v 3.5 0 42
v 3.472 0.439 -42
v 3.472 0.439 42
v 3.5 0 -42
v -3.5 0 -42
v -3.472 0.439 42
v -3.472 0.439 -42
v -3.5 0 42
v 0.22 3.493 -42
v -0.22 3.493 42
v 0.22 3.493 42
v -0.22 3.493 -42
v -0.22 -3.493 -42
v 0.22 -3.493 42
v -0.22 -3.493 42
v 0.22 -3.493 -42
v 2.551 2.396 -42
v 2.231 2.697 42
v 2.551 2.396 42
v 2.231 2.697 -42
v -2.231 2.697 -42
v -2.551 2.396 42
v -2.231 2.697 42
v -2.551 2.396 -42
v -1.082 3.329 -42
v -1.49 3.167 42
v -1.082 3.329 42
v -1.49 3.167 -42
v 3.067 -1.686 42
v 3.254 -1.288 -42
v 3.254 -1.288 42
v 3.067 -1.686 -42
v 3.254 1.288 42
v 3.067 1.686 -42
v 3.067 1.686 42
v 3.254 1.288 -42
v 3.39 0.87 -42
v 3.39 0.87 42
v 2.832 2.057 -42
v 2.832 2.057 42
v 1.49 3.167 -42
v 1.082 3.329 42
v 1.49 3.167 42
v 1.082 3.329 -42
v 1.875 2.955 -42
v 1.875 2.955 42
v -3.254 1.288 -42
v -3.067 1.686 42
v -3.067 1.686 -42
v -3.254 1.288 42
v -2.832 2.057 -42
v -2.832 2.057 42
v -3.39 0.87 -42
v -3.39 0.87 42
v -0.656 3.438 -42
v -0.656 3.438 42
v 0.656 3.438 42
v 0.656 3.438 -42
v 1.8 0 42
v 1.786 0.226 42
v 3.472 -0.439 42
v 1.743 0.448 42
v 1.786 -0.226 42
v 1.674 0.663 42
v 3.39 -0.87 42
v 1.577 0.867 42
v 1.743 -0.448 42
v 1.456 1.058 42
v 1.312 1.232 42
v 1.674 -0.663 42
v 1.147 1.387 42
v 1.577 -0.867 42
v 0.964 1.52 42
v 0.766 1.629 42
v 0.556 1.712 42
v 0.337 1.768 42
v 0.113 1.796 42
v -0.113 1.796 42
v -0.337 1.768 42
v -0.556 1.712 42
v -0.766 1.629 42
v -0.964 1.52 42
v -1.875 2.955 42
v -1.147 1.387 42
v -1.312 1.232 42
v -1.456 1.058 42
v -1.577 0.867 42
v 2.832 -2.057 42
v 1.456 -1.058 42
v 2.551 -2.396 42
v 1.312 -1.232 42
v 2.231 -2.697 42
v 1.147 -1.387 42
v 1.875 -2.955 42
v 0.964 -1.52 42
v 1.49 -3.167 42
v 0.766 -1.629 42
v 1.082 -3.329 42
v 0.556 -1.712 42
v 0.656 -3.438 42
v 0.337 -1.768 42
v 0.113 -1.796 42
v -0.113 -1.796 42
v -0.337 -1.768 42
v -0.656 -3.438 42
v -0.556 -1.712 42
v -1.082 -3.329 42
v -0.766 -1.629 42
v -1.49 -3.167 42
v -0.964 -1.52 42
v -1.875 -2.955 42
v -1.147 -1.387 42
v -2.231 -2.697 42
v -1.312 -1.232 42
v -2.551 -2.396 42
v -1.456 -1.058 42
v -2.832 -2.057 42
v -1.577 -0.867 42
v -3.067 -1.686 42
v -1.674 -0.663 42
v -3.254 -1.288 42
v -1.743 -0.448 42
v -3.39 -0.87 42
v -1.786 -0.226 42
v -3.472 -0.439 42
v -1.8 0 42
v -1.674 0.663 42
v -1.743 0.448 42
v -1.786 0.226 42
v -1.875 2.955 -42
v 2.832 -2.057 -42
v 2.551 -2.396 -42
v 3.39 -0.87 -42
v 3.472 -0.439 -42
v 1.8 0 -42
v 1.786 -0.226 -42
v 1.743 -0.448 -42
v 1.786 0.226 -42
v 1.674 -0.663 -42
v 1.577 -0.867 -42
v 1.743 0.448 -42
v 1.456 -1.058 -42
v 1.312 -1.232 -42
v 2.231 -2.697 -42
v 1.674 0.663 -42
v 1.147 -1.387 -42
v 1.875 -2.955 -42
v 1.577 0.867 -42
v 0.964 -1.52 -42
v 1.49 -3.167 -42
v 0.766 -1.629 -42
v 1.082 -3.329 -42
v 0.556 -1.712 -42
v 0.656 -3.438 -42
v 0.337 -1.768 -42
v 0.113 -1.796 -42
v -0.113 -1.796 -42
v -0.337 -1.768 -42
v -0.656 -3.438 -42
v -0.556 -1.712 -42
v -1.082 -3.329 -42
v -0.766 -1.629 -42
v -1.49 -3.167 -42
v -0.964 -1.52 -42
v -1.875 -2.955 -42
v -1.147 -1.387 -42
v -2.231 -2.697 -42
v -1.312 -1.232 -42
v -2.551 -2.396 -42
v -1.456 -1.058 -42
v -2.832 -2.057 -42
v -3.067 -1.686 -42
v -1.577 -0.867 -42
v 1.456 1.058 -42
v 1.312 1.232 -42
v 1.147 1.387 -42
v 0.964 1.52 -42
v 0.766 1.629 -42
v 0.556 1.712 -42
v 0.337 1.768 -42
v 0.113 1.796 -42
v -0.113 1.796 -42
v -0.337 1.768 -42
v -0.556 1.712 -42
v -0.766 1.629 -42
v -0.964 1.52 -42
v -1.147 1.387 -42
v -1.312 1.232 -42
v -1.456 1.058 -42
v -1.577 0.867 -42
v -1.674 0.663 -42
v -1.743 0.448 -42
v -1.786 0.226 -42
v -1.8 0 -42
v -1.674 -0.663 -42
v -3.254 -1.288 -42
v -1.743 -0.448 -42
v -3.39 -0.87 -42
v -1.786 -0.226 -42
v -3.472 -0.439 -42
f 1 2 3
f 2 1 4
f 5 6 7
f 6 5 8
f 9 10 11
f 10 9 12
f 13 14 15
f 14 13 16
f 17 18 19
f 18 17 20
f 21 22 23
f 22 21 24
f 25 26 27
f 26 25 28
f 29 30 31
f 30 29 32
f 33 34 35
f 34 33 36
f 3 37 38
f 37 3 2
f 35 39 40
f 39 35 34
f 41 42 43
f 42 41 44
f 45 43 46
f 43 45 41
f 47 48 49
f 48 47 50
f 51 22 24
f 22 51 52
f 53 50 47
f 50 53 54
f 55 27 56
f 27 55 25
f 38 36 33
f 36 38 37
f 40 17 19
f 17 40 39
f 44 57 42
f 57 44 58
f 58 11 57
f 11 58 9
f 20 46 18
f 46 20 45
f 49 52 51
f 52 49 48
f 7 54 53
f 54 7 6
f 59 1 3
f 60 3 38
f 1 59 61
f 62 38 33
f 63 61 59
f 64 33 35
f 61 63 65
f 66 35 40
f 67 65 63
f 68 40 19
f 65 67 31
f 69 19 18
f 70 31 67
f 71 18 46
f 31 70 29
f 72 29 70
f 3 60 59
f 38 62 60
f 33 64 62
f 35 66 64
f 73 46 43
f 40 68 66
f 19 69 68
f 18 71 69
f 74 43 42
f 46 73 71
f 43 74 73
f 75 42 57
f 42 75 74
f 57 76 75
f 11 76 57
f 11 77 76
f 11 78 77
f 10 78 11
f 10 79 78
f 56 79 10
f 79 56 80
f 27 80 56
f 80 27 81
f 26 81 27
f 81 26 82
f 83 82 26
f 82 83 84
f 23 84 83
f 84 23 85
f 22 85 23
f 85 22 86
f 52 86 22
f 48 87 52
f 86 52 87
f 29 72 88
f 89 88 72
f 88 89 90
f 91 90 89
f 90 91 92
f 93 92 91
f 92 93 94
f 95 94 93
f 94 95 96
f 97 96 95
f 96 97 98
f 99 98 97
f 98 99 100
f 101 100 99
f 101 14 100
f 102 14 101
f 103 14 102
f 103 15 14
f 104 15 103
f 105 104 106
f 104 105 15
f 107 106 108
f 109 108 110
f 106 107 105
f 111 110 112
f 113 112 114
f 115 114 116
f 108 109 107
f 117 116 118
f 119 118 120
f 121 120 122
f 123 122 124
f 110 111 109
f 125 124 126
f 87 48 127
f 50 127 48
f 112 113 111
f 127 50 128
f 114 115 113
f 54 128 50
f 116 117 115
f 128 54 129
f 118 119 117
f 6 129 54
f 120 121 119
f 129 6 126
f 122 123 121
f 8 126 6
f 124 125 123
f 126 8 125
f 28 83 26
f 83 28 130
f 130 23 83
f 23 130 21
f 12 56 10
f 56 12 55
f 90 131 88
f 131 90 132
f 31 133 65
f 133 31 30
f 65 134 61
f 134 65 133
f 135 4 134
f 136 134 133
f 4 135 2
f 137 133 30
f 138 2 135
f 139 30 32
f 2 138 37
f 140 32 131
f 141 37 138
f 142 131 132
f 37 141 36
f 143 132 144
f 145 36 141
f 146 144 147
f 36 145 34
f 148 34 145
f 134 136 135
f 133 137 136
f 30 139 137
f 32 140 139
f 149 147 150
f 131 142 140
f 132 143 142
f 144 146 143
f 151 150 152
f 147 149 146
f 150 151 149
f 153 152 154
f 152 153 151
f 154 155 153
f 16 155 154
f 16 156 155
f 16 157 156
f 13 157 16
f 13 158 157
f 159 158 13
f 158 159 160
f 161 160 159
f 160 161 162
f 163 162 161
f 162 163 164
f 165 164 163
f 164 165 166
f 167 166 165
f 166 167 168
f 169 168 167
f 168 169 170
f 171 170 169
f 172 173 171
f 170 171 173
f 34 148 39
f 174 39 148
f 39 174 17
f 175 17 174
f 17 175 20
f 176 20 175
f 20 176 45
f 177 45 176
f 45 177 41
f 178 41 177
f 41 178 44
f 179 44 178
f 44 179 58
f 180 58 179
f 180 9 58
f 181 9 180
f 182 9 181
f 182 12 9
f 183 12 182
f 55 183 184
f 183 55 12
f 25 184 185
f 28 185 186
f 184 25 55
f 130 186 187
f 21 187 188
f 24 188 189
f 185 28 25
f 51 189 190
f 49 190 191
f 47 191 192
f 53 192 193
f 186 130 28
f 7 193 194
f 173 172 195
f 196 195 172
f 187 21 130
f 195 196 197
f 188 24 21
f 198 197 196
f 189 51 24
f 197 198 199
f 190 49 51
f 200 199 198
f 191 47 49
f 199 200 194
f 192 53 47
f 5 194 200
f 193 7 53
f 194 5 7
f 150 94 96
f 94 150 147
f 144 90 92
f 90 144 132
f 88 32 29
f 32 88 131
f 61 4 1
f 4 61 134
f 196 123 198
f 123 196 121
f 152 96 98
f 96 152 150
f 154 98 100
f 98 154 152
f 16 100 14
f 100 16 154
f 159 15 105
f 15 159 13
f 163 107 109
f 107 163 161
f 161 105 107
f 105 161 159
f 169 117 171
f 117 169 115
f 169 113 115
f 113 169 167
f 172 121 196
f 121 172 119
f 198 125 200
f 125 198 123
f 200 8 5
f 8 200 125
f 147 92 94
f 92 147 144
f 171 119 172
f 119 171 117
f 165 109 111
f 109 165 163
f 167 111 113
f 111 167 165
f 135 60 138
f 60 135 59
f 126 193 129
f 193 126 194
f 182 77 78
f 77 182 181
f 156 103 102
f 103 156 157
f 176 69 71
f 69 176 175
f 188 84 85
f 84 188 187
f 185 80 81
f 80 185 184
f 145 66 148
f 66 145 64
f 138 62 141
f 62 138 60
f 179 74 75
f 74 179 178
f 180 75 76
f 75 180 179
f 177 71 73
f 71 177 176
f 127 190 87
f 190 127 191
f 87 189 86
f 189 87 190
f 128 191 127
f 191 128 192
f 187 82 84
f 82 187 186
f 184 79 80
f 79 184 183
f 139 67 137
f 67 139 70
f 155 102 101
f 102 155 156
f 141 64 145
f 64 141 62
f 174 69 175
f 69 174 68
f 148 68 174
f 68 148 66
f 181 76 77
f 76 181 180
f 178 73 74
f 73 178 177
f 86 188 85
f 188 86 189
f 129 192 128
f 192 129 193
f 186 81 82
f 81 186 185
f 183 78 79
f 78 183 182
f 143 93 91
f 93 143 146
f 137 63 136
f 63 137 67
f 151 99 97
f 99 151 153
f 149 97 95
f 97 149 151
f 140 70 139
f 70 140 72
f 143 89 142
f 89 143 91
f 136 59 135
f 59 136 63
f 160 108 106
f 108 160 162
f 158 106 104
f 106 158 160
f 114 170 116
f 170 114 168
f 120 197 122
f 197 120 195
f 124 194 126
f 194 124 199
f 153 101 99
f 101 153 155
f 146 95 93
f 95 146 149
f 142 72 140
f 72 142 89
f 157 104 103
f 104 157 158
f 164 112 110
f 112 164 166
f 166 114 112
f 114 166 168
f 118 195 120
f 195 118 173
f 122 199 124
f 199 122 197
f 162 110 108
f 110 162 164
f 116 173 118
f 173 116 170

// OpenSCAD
$fn = 50;


difference() {
	union() {
		translate(v = [0, 0, -42.0000000000]) {
			cylinder(h = 84, r = 3.5000000000);
		}
	}
	union() {
		translate(v = [0, 0, -100.0000000000]) {
			cylinder(h = 200, r = 1.8000000000);
		}
	}
}
